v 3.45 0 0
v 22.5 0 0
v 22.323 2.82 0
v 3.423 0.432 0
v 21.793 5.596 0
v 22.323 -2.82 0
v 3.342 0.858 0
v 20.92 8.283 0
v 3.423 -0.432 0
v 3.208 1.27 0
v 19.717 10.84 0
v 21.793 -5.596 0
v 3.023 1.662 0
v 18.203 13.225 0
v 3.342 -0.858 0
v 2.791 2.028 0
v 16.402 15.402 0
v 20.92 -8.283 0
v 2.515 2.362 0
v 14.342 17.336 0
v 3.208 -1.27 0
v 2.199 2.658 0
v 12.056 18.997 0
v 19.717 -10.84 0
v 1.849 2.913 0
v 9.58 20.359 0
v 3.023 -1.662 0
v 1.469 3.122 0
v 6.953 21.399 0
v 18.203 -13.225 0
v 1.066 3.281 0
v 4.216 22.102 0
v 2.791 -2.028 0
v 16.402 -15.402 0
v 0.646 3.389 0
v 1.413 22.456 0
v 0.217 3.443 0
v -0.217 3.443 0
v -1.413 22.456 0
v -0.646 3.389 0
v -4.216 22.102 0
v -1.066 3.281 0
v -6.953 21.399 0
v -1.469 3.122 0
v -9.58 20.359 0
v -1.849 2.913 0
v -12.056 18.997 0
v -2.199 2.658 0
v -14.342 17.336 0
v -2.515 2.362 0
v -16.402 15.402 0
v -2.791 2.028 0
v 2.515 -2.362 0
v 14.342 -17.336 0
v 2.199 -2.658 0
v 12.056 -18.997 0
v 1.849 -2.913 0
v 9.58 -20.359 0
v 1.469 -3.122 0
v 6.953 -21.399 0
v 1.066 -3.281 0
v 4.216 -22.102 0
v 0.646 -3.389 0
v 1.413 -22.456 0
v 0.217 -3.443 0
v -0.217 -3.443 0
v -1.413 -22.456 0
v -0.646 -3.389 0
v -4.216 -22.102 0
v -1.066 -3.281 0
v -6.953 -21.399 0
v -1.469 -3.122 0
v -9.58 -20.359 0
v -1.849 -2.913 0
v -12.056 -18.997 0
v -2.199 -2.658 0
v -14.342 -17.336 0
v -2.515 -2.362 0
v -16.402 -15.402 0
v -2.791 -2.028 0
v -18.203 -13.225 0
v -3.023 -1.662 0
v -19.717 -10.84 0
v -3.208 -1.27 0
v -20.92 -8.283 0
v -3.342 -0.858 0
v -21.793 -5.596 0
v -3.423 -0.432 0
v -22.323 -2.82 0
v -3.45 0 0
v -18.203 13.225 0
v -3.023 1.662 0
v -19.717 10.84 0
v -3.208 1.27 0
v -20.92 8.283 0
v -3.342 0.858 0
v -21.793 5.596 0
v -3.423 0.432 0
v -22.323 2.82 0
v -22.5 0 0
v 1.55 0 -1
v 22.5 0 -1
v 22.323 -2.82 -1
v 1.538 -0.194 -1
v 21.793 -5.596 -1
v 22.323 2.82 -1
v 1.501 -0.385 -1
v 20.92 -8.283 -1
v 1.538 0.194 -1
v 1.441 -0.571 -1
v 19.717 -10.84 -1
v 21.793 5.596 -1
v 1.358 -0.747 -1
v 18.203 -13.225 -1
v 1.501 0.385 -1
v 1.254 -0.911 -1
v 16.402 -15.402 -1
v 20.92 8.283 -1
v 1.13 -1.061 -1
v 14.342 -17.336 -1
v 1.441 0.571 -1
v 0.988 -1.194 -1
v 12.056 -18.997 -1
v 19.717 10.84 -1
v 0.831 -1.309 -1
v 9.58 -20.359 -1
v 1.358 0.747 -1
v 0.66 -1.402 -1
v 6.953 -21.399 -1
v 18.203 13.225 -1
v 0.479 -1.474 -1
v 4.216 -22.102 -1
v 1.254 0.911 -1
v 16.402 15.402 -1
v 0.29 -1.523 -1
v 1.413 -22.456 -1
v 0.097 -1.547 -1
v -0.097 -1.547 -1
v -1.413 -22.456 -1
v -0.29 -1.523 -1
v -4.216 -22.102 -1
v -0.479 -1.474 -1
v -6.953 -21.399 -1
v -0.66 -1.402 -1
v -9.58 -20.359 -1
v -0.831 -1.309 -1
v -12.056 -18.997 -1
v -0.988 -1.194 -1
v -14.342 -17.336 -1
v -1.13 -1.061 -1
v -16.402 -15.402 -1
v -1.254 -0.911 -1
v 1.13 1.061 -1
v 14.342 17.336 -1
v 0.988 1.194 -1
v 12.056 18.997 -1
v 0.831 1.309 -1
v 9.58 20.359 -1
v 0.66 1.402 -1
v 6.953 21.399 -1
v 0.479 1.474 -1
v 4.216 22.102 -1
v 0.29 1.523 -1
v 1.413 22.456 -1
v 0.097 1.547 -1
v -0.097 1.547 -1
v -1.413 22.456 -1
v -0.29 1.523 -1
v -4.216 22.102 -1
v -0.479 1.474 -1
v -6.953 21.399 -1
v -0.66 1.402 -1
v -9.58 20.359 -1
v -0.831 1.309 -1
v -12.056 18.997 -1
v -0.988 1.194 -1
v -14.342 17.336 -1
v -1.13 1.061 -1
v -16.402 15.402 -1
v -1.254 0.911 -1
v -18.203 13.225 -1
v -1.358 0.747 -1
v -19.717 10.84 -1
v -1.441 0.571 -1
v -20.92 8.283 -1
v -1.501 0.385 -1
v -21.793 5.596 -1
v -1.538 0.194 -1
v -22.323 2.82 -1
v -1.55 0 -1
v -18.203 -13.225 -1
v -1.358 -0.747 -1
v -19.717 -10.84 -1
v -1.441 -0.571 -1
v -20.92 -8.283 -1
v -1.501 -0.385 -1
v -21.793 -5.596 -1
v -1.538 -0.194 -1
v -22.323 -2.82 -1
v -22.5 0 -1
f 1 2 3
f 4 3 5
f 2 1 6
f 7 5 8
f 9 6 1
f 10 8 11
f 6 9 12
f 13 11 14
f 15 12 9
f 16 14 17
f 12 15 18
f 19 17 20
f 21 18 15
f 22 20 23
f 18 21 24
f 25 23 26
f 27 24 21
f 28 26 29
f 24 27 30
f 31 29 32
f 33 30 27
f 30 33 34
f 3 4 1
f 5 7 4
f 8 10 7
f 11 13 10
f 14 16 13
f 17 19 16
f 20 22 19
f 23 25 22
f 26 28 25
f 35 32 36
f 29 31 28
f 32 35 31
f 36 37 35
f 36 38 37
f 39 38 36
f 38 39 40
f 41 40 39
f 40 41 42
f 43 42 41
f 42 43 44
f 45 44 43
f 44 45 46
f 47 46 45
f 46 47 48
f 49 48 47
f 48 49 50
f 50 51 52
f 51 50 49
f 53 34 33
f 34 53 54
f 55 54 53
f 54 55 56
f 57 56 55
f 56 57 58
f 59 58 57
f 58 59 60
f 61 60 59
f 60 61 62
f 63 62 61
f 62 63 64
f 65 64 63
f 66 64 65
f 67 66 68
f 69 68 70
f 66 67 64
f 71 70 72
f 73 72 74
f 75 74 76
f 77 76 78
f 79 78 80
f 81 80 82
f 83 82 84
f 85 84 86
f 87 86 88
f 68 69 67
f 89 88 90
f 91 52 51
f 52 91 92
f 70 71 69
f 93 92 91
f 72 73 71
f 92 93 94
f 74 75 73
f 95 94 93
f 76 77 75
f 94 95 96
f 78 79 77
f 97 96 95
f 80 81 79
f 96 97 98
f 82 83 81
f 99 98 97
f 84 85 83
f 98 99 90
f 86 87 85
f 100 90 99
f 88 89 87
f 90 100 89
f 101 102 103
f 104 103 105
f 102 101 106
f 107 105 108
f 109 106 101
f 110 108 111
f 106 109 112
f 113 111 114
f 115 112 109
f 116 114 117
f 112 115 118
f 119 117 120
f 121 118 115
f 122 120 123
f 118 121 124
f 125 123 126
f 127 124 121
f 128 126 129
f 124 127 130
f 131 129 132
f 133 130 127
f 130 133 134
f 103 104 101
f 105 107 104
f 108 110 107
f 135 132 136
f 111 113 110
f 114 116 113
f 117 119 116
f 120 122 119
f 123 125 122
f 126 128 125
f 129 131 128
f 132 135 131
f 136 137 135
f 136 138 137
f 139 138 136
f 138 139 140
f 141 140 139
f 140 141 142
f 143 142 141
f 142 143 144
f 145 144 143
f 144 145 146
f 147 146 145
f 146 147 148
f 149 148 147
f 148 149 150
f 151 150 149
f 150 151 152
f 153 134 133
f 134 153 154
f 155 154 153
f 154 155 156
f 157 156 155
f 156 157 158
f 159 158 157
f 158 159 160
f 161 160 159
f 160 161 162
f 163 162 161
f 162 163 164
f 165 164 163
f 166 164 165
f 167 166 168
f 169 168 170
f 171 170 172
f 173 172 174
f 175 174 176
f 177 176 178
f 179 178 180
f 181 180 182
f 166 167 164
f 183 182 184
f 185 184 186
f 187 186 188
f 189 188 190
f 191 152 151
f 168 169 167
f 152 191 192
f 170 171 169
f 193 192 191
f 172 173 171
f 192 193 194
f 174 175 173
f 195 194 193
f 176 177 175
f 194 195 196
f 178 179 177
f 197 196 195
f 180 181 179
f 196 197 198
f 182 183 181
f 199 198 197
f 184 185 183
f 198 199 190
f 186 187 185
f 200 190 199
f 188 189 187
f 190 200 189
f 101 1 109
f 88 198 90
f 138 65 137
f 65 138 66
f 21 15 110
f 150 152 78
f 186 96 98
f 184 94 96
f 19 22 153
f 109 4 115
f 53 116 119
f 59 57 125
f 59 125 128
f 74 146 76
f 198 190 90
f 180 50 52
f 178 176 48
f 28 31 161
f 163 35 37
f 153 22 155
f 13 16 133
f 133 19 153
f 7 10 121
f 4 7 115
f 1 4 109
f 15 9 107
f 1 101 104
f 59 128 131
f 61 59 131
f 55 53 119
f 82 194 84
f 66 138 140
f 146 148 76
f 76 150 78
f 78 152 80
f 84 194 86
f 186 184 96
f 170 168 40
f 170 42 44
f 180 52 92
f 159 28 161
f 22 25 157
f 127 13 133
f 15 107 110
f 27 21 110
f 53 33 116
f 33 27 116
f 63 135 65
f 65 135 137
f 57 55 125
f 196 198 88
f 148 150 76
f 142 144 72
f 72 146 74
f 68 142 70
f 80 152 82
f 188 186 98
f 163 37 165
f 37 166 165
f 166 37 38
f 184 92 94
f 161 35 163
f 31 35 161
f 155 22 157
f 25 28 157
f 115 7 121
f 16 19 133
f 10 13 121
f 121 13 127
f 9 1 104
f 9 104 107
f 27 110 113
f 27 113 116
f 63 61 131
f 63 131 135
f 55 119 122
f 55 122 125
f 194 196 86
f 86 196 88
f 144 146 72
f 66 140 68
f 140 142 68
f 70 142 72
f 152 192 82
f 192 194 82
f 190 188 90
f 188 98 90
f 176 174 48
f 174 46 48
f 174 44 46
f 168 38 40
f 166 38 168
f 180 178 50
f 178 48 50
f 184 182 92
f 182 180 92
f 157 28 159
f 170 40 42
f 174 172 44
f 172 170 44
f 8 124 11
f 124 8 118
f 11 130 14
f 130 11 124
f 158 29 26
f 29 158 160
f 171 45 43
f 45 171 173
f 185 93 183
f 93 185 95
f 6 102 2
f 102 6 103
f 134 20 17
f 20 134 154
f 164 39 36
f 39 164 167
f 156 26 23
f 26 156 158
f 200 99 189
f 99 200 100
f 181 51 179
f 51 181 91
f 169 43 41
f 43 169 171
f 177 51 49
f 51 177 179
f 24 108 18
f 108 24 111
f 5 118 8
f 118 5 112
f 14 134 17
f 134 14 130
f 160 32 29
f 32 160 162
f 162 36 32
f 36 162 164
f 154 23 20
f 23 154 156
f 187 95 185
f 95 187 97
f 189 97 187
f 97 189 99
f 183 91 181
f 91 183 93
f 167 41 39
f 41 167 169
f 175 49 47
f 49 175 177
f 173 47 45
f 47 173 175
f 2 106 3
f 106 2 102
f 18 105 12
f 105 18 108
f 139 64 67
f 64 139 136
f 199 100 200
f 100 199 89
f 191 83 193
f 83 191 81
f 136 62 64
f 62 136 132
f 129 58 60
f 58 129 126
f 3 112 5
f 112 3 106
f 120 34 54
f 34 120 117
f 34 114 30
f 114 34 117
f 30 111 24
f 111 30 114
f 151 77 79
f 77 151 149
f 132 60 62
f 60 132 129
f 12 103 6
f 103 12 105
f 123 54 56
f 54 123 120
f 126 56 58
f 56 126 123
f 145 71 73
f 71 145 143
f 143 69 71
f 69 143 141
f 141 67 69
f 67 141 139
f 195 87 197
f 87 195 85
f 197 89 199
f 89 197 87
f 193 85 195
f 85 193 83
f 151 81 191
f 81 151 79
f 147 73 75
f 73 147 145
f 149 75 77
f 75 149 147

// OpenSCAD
$fn = 50;


difference() {
	union() {
		translate(v = [0, 0, -1.0000000000]) {
			cylinder(h = 1.0000000000, r = 22.5000000000);
		}
	}
	union() {
		translate(v = [0, 0, 0]) {
			rotate(a = [0, 0, 0]) {
				difference() {
					union() {
						translate(v = [0, 0, -1.0000000000]) {
							cylinder(h = 1.0000000000, r = 1.2500000000);
						}
						translate(v = [0, 0, -1.0000000000]) {
							cylinder(h = 1.0000000000, r1 = 1.5500000000, r2 = 3.4500000000);
						}
						translate(v = [0, 0, -1.0000000000]) {
							cylinder(h = 1.0000000000, r = 1.5500000000);
						}
						translate(v = [0, 0, -1.0000000000]) {
							cylinder(h = 1.0000000000, r = 1.2500000000);
						}
					}
					union();
				}
			}
		}
	}
}
